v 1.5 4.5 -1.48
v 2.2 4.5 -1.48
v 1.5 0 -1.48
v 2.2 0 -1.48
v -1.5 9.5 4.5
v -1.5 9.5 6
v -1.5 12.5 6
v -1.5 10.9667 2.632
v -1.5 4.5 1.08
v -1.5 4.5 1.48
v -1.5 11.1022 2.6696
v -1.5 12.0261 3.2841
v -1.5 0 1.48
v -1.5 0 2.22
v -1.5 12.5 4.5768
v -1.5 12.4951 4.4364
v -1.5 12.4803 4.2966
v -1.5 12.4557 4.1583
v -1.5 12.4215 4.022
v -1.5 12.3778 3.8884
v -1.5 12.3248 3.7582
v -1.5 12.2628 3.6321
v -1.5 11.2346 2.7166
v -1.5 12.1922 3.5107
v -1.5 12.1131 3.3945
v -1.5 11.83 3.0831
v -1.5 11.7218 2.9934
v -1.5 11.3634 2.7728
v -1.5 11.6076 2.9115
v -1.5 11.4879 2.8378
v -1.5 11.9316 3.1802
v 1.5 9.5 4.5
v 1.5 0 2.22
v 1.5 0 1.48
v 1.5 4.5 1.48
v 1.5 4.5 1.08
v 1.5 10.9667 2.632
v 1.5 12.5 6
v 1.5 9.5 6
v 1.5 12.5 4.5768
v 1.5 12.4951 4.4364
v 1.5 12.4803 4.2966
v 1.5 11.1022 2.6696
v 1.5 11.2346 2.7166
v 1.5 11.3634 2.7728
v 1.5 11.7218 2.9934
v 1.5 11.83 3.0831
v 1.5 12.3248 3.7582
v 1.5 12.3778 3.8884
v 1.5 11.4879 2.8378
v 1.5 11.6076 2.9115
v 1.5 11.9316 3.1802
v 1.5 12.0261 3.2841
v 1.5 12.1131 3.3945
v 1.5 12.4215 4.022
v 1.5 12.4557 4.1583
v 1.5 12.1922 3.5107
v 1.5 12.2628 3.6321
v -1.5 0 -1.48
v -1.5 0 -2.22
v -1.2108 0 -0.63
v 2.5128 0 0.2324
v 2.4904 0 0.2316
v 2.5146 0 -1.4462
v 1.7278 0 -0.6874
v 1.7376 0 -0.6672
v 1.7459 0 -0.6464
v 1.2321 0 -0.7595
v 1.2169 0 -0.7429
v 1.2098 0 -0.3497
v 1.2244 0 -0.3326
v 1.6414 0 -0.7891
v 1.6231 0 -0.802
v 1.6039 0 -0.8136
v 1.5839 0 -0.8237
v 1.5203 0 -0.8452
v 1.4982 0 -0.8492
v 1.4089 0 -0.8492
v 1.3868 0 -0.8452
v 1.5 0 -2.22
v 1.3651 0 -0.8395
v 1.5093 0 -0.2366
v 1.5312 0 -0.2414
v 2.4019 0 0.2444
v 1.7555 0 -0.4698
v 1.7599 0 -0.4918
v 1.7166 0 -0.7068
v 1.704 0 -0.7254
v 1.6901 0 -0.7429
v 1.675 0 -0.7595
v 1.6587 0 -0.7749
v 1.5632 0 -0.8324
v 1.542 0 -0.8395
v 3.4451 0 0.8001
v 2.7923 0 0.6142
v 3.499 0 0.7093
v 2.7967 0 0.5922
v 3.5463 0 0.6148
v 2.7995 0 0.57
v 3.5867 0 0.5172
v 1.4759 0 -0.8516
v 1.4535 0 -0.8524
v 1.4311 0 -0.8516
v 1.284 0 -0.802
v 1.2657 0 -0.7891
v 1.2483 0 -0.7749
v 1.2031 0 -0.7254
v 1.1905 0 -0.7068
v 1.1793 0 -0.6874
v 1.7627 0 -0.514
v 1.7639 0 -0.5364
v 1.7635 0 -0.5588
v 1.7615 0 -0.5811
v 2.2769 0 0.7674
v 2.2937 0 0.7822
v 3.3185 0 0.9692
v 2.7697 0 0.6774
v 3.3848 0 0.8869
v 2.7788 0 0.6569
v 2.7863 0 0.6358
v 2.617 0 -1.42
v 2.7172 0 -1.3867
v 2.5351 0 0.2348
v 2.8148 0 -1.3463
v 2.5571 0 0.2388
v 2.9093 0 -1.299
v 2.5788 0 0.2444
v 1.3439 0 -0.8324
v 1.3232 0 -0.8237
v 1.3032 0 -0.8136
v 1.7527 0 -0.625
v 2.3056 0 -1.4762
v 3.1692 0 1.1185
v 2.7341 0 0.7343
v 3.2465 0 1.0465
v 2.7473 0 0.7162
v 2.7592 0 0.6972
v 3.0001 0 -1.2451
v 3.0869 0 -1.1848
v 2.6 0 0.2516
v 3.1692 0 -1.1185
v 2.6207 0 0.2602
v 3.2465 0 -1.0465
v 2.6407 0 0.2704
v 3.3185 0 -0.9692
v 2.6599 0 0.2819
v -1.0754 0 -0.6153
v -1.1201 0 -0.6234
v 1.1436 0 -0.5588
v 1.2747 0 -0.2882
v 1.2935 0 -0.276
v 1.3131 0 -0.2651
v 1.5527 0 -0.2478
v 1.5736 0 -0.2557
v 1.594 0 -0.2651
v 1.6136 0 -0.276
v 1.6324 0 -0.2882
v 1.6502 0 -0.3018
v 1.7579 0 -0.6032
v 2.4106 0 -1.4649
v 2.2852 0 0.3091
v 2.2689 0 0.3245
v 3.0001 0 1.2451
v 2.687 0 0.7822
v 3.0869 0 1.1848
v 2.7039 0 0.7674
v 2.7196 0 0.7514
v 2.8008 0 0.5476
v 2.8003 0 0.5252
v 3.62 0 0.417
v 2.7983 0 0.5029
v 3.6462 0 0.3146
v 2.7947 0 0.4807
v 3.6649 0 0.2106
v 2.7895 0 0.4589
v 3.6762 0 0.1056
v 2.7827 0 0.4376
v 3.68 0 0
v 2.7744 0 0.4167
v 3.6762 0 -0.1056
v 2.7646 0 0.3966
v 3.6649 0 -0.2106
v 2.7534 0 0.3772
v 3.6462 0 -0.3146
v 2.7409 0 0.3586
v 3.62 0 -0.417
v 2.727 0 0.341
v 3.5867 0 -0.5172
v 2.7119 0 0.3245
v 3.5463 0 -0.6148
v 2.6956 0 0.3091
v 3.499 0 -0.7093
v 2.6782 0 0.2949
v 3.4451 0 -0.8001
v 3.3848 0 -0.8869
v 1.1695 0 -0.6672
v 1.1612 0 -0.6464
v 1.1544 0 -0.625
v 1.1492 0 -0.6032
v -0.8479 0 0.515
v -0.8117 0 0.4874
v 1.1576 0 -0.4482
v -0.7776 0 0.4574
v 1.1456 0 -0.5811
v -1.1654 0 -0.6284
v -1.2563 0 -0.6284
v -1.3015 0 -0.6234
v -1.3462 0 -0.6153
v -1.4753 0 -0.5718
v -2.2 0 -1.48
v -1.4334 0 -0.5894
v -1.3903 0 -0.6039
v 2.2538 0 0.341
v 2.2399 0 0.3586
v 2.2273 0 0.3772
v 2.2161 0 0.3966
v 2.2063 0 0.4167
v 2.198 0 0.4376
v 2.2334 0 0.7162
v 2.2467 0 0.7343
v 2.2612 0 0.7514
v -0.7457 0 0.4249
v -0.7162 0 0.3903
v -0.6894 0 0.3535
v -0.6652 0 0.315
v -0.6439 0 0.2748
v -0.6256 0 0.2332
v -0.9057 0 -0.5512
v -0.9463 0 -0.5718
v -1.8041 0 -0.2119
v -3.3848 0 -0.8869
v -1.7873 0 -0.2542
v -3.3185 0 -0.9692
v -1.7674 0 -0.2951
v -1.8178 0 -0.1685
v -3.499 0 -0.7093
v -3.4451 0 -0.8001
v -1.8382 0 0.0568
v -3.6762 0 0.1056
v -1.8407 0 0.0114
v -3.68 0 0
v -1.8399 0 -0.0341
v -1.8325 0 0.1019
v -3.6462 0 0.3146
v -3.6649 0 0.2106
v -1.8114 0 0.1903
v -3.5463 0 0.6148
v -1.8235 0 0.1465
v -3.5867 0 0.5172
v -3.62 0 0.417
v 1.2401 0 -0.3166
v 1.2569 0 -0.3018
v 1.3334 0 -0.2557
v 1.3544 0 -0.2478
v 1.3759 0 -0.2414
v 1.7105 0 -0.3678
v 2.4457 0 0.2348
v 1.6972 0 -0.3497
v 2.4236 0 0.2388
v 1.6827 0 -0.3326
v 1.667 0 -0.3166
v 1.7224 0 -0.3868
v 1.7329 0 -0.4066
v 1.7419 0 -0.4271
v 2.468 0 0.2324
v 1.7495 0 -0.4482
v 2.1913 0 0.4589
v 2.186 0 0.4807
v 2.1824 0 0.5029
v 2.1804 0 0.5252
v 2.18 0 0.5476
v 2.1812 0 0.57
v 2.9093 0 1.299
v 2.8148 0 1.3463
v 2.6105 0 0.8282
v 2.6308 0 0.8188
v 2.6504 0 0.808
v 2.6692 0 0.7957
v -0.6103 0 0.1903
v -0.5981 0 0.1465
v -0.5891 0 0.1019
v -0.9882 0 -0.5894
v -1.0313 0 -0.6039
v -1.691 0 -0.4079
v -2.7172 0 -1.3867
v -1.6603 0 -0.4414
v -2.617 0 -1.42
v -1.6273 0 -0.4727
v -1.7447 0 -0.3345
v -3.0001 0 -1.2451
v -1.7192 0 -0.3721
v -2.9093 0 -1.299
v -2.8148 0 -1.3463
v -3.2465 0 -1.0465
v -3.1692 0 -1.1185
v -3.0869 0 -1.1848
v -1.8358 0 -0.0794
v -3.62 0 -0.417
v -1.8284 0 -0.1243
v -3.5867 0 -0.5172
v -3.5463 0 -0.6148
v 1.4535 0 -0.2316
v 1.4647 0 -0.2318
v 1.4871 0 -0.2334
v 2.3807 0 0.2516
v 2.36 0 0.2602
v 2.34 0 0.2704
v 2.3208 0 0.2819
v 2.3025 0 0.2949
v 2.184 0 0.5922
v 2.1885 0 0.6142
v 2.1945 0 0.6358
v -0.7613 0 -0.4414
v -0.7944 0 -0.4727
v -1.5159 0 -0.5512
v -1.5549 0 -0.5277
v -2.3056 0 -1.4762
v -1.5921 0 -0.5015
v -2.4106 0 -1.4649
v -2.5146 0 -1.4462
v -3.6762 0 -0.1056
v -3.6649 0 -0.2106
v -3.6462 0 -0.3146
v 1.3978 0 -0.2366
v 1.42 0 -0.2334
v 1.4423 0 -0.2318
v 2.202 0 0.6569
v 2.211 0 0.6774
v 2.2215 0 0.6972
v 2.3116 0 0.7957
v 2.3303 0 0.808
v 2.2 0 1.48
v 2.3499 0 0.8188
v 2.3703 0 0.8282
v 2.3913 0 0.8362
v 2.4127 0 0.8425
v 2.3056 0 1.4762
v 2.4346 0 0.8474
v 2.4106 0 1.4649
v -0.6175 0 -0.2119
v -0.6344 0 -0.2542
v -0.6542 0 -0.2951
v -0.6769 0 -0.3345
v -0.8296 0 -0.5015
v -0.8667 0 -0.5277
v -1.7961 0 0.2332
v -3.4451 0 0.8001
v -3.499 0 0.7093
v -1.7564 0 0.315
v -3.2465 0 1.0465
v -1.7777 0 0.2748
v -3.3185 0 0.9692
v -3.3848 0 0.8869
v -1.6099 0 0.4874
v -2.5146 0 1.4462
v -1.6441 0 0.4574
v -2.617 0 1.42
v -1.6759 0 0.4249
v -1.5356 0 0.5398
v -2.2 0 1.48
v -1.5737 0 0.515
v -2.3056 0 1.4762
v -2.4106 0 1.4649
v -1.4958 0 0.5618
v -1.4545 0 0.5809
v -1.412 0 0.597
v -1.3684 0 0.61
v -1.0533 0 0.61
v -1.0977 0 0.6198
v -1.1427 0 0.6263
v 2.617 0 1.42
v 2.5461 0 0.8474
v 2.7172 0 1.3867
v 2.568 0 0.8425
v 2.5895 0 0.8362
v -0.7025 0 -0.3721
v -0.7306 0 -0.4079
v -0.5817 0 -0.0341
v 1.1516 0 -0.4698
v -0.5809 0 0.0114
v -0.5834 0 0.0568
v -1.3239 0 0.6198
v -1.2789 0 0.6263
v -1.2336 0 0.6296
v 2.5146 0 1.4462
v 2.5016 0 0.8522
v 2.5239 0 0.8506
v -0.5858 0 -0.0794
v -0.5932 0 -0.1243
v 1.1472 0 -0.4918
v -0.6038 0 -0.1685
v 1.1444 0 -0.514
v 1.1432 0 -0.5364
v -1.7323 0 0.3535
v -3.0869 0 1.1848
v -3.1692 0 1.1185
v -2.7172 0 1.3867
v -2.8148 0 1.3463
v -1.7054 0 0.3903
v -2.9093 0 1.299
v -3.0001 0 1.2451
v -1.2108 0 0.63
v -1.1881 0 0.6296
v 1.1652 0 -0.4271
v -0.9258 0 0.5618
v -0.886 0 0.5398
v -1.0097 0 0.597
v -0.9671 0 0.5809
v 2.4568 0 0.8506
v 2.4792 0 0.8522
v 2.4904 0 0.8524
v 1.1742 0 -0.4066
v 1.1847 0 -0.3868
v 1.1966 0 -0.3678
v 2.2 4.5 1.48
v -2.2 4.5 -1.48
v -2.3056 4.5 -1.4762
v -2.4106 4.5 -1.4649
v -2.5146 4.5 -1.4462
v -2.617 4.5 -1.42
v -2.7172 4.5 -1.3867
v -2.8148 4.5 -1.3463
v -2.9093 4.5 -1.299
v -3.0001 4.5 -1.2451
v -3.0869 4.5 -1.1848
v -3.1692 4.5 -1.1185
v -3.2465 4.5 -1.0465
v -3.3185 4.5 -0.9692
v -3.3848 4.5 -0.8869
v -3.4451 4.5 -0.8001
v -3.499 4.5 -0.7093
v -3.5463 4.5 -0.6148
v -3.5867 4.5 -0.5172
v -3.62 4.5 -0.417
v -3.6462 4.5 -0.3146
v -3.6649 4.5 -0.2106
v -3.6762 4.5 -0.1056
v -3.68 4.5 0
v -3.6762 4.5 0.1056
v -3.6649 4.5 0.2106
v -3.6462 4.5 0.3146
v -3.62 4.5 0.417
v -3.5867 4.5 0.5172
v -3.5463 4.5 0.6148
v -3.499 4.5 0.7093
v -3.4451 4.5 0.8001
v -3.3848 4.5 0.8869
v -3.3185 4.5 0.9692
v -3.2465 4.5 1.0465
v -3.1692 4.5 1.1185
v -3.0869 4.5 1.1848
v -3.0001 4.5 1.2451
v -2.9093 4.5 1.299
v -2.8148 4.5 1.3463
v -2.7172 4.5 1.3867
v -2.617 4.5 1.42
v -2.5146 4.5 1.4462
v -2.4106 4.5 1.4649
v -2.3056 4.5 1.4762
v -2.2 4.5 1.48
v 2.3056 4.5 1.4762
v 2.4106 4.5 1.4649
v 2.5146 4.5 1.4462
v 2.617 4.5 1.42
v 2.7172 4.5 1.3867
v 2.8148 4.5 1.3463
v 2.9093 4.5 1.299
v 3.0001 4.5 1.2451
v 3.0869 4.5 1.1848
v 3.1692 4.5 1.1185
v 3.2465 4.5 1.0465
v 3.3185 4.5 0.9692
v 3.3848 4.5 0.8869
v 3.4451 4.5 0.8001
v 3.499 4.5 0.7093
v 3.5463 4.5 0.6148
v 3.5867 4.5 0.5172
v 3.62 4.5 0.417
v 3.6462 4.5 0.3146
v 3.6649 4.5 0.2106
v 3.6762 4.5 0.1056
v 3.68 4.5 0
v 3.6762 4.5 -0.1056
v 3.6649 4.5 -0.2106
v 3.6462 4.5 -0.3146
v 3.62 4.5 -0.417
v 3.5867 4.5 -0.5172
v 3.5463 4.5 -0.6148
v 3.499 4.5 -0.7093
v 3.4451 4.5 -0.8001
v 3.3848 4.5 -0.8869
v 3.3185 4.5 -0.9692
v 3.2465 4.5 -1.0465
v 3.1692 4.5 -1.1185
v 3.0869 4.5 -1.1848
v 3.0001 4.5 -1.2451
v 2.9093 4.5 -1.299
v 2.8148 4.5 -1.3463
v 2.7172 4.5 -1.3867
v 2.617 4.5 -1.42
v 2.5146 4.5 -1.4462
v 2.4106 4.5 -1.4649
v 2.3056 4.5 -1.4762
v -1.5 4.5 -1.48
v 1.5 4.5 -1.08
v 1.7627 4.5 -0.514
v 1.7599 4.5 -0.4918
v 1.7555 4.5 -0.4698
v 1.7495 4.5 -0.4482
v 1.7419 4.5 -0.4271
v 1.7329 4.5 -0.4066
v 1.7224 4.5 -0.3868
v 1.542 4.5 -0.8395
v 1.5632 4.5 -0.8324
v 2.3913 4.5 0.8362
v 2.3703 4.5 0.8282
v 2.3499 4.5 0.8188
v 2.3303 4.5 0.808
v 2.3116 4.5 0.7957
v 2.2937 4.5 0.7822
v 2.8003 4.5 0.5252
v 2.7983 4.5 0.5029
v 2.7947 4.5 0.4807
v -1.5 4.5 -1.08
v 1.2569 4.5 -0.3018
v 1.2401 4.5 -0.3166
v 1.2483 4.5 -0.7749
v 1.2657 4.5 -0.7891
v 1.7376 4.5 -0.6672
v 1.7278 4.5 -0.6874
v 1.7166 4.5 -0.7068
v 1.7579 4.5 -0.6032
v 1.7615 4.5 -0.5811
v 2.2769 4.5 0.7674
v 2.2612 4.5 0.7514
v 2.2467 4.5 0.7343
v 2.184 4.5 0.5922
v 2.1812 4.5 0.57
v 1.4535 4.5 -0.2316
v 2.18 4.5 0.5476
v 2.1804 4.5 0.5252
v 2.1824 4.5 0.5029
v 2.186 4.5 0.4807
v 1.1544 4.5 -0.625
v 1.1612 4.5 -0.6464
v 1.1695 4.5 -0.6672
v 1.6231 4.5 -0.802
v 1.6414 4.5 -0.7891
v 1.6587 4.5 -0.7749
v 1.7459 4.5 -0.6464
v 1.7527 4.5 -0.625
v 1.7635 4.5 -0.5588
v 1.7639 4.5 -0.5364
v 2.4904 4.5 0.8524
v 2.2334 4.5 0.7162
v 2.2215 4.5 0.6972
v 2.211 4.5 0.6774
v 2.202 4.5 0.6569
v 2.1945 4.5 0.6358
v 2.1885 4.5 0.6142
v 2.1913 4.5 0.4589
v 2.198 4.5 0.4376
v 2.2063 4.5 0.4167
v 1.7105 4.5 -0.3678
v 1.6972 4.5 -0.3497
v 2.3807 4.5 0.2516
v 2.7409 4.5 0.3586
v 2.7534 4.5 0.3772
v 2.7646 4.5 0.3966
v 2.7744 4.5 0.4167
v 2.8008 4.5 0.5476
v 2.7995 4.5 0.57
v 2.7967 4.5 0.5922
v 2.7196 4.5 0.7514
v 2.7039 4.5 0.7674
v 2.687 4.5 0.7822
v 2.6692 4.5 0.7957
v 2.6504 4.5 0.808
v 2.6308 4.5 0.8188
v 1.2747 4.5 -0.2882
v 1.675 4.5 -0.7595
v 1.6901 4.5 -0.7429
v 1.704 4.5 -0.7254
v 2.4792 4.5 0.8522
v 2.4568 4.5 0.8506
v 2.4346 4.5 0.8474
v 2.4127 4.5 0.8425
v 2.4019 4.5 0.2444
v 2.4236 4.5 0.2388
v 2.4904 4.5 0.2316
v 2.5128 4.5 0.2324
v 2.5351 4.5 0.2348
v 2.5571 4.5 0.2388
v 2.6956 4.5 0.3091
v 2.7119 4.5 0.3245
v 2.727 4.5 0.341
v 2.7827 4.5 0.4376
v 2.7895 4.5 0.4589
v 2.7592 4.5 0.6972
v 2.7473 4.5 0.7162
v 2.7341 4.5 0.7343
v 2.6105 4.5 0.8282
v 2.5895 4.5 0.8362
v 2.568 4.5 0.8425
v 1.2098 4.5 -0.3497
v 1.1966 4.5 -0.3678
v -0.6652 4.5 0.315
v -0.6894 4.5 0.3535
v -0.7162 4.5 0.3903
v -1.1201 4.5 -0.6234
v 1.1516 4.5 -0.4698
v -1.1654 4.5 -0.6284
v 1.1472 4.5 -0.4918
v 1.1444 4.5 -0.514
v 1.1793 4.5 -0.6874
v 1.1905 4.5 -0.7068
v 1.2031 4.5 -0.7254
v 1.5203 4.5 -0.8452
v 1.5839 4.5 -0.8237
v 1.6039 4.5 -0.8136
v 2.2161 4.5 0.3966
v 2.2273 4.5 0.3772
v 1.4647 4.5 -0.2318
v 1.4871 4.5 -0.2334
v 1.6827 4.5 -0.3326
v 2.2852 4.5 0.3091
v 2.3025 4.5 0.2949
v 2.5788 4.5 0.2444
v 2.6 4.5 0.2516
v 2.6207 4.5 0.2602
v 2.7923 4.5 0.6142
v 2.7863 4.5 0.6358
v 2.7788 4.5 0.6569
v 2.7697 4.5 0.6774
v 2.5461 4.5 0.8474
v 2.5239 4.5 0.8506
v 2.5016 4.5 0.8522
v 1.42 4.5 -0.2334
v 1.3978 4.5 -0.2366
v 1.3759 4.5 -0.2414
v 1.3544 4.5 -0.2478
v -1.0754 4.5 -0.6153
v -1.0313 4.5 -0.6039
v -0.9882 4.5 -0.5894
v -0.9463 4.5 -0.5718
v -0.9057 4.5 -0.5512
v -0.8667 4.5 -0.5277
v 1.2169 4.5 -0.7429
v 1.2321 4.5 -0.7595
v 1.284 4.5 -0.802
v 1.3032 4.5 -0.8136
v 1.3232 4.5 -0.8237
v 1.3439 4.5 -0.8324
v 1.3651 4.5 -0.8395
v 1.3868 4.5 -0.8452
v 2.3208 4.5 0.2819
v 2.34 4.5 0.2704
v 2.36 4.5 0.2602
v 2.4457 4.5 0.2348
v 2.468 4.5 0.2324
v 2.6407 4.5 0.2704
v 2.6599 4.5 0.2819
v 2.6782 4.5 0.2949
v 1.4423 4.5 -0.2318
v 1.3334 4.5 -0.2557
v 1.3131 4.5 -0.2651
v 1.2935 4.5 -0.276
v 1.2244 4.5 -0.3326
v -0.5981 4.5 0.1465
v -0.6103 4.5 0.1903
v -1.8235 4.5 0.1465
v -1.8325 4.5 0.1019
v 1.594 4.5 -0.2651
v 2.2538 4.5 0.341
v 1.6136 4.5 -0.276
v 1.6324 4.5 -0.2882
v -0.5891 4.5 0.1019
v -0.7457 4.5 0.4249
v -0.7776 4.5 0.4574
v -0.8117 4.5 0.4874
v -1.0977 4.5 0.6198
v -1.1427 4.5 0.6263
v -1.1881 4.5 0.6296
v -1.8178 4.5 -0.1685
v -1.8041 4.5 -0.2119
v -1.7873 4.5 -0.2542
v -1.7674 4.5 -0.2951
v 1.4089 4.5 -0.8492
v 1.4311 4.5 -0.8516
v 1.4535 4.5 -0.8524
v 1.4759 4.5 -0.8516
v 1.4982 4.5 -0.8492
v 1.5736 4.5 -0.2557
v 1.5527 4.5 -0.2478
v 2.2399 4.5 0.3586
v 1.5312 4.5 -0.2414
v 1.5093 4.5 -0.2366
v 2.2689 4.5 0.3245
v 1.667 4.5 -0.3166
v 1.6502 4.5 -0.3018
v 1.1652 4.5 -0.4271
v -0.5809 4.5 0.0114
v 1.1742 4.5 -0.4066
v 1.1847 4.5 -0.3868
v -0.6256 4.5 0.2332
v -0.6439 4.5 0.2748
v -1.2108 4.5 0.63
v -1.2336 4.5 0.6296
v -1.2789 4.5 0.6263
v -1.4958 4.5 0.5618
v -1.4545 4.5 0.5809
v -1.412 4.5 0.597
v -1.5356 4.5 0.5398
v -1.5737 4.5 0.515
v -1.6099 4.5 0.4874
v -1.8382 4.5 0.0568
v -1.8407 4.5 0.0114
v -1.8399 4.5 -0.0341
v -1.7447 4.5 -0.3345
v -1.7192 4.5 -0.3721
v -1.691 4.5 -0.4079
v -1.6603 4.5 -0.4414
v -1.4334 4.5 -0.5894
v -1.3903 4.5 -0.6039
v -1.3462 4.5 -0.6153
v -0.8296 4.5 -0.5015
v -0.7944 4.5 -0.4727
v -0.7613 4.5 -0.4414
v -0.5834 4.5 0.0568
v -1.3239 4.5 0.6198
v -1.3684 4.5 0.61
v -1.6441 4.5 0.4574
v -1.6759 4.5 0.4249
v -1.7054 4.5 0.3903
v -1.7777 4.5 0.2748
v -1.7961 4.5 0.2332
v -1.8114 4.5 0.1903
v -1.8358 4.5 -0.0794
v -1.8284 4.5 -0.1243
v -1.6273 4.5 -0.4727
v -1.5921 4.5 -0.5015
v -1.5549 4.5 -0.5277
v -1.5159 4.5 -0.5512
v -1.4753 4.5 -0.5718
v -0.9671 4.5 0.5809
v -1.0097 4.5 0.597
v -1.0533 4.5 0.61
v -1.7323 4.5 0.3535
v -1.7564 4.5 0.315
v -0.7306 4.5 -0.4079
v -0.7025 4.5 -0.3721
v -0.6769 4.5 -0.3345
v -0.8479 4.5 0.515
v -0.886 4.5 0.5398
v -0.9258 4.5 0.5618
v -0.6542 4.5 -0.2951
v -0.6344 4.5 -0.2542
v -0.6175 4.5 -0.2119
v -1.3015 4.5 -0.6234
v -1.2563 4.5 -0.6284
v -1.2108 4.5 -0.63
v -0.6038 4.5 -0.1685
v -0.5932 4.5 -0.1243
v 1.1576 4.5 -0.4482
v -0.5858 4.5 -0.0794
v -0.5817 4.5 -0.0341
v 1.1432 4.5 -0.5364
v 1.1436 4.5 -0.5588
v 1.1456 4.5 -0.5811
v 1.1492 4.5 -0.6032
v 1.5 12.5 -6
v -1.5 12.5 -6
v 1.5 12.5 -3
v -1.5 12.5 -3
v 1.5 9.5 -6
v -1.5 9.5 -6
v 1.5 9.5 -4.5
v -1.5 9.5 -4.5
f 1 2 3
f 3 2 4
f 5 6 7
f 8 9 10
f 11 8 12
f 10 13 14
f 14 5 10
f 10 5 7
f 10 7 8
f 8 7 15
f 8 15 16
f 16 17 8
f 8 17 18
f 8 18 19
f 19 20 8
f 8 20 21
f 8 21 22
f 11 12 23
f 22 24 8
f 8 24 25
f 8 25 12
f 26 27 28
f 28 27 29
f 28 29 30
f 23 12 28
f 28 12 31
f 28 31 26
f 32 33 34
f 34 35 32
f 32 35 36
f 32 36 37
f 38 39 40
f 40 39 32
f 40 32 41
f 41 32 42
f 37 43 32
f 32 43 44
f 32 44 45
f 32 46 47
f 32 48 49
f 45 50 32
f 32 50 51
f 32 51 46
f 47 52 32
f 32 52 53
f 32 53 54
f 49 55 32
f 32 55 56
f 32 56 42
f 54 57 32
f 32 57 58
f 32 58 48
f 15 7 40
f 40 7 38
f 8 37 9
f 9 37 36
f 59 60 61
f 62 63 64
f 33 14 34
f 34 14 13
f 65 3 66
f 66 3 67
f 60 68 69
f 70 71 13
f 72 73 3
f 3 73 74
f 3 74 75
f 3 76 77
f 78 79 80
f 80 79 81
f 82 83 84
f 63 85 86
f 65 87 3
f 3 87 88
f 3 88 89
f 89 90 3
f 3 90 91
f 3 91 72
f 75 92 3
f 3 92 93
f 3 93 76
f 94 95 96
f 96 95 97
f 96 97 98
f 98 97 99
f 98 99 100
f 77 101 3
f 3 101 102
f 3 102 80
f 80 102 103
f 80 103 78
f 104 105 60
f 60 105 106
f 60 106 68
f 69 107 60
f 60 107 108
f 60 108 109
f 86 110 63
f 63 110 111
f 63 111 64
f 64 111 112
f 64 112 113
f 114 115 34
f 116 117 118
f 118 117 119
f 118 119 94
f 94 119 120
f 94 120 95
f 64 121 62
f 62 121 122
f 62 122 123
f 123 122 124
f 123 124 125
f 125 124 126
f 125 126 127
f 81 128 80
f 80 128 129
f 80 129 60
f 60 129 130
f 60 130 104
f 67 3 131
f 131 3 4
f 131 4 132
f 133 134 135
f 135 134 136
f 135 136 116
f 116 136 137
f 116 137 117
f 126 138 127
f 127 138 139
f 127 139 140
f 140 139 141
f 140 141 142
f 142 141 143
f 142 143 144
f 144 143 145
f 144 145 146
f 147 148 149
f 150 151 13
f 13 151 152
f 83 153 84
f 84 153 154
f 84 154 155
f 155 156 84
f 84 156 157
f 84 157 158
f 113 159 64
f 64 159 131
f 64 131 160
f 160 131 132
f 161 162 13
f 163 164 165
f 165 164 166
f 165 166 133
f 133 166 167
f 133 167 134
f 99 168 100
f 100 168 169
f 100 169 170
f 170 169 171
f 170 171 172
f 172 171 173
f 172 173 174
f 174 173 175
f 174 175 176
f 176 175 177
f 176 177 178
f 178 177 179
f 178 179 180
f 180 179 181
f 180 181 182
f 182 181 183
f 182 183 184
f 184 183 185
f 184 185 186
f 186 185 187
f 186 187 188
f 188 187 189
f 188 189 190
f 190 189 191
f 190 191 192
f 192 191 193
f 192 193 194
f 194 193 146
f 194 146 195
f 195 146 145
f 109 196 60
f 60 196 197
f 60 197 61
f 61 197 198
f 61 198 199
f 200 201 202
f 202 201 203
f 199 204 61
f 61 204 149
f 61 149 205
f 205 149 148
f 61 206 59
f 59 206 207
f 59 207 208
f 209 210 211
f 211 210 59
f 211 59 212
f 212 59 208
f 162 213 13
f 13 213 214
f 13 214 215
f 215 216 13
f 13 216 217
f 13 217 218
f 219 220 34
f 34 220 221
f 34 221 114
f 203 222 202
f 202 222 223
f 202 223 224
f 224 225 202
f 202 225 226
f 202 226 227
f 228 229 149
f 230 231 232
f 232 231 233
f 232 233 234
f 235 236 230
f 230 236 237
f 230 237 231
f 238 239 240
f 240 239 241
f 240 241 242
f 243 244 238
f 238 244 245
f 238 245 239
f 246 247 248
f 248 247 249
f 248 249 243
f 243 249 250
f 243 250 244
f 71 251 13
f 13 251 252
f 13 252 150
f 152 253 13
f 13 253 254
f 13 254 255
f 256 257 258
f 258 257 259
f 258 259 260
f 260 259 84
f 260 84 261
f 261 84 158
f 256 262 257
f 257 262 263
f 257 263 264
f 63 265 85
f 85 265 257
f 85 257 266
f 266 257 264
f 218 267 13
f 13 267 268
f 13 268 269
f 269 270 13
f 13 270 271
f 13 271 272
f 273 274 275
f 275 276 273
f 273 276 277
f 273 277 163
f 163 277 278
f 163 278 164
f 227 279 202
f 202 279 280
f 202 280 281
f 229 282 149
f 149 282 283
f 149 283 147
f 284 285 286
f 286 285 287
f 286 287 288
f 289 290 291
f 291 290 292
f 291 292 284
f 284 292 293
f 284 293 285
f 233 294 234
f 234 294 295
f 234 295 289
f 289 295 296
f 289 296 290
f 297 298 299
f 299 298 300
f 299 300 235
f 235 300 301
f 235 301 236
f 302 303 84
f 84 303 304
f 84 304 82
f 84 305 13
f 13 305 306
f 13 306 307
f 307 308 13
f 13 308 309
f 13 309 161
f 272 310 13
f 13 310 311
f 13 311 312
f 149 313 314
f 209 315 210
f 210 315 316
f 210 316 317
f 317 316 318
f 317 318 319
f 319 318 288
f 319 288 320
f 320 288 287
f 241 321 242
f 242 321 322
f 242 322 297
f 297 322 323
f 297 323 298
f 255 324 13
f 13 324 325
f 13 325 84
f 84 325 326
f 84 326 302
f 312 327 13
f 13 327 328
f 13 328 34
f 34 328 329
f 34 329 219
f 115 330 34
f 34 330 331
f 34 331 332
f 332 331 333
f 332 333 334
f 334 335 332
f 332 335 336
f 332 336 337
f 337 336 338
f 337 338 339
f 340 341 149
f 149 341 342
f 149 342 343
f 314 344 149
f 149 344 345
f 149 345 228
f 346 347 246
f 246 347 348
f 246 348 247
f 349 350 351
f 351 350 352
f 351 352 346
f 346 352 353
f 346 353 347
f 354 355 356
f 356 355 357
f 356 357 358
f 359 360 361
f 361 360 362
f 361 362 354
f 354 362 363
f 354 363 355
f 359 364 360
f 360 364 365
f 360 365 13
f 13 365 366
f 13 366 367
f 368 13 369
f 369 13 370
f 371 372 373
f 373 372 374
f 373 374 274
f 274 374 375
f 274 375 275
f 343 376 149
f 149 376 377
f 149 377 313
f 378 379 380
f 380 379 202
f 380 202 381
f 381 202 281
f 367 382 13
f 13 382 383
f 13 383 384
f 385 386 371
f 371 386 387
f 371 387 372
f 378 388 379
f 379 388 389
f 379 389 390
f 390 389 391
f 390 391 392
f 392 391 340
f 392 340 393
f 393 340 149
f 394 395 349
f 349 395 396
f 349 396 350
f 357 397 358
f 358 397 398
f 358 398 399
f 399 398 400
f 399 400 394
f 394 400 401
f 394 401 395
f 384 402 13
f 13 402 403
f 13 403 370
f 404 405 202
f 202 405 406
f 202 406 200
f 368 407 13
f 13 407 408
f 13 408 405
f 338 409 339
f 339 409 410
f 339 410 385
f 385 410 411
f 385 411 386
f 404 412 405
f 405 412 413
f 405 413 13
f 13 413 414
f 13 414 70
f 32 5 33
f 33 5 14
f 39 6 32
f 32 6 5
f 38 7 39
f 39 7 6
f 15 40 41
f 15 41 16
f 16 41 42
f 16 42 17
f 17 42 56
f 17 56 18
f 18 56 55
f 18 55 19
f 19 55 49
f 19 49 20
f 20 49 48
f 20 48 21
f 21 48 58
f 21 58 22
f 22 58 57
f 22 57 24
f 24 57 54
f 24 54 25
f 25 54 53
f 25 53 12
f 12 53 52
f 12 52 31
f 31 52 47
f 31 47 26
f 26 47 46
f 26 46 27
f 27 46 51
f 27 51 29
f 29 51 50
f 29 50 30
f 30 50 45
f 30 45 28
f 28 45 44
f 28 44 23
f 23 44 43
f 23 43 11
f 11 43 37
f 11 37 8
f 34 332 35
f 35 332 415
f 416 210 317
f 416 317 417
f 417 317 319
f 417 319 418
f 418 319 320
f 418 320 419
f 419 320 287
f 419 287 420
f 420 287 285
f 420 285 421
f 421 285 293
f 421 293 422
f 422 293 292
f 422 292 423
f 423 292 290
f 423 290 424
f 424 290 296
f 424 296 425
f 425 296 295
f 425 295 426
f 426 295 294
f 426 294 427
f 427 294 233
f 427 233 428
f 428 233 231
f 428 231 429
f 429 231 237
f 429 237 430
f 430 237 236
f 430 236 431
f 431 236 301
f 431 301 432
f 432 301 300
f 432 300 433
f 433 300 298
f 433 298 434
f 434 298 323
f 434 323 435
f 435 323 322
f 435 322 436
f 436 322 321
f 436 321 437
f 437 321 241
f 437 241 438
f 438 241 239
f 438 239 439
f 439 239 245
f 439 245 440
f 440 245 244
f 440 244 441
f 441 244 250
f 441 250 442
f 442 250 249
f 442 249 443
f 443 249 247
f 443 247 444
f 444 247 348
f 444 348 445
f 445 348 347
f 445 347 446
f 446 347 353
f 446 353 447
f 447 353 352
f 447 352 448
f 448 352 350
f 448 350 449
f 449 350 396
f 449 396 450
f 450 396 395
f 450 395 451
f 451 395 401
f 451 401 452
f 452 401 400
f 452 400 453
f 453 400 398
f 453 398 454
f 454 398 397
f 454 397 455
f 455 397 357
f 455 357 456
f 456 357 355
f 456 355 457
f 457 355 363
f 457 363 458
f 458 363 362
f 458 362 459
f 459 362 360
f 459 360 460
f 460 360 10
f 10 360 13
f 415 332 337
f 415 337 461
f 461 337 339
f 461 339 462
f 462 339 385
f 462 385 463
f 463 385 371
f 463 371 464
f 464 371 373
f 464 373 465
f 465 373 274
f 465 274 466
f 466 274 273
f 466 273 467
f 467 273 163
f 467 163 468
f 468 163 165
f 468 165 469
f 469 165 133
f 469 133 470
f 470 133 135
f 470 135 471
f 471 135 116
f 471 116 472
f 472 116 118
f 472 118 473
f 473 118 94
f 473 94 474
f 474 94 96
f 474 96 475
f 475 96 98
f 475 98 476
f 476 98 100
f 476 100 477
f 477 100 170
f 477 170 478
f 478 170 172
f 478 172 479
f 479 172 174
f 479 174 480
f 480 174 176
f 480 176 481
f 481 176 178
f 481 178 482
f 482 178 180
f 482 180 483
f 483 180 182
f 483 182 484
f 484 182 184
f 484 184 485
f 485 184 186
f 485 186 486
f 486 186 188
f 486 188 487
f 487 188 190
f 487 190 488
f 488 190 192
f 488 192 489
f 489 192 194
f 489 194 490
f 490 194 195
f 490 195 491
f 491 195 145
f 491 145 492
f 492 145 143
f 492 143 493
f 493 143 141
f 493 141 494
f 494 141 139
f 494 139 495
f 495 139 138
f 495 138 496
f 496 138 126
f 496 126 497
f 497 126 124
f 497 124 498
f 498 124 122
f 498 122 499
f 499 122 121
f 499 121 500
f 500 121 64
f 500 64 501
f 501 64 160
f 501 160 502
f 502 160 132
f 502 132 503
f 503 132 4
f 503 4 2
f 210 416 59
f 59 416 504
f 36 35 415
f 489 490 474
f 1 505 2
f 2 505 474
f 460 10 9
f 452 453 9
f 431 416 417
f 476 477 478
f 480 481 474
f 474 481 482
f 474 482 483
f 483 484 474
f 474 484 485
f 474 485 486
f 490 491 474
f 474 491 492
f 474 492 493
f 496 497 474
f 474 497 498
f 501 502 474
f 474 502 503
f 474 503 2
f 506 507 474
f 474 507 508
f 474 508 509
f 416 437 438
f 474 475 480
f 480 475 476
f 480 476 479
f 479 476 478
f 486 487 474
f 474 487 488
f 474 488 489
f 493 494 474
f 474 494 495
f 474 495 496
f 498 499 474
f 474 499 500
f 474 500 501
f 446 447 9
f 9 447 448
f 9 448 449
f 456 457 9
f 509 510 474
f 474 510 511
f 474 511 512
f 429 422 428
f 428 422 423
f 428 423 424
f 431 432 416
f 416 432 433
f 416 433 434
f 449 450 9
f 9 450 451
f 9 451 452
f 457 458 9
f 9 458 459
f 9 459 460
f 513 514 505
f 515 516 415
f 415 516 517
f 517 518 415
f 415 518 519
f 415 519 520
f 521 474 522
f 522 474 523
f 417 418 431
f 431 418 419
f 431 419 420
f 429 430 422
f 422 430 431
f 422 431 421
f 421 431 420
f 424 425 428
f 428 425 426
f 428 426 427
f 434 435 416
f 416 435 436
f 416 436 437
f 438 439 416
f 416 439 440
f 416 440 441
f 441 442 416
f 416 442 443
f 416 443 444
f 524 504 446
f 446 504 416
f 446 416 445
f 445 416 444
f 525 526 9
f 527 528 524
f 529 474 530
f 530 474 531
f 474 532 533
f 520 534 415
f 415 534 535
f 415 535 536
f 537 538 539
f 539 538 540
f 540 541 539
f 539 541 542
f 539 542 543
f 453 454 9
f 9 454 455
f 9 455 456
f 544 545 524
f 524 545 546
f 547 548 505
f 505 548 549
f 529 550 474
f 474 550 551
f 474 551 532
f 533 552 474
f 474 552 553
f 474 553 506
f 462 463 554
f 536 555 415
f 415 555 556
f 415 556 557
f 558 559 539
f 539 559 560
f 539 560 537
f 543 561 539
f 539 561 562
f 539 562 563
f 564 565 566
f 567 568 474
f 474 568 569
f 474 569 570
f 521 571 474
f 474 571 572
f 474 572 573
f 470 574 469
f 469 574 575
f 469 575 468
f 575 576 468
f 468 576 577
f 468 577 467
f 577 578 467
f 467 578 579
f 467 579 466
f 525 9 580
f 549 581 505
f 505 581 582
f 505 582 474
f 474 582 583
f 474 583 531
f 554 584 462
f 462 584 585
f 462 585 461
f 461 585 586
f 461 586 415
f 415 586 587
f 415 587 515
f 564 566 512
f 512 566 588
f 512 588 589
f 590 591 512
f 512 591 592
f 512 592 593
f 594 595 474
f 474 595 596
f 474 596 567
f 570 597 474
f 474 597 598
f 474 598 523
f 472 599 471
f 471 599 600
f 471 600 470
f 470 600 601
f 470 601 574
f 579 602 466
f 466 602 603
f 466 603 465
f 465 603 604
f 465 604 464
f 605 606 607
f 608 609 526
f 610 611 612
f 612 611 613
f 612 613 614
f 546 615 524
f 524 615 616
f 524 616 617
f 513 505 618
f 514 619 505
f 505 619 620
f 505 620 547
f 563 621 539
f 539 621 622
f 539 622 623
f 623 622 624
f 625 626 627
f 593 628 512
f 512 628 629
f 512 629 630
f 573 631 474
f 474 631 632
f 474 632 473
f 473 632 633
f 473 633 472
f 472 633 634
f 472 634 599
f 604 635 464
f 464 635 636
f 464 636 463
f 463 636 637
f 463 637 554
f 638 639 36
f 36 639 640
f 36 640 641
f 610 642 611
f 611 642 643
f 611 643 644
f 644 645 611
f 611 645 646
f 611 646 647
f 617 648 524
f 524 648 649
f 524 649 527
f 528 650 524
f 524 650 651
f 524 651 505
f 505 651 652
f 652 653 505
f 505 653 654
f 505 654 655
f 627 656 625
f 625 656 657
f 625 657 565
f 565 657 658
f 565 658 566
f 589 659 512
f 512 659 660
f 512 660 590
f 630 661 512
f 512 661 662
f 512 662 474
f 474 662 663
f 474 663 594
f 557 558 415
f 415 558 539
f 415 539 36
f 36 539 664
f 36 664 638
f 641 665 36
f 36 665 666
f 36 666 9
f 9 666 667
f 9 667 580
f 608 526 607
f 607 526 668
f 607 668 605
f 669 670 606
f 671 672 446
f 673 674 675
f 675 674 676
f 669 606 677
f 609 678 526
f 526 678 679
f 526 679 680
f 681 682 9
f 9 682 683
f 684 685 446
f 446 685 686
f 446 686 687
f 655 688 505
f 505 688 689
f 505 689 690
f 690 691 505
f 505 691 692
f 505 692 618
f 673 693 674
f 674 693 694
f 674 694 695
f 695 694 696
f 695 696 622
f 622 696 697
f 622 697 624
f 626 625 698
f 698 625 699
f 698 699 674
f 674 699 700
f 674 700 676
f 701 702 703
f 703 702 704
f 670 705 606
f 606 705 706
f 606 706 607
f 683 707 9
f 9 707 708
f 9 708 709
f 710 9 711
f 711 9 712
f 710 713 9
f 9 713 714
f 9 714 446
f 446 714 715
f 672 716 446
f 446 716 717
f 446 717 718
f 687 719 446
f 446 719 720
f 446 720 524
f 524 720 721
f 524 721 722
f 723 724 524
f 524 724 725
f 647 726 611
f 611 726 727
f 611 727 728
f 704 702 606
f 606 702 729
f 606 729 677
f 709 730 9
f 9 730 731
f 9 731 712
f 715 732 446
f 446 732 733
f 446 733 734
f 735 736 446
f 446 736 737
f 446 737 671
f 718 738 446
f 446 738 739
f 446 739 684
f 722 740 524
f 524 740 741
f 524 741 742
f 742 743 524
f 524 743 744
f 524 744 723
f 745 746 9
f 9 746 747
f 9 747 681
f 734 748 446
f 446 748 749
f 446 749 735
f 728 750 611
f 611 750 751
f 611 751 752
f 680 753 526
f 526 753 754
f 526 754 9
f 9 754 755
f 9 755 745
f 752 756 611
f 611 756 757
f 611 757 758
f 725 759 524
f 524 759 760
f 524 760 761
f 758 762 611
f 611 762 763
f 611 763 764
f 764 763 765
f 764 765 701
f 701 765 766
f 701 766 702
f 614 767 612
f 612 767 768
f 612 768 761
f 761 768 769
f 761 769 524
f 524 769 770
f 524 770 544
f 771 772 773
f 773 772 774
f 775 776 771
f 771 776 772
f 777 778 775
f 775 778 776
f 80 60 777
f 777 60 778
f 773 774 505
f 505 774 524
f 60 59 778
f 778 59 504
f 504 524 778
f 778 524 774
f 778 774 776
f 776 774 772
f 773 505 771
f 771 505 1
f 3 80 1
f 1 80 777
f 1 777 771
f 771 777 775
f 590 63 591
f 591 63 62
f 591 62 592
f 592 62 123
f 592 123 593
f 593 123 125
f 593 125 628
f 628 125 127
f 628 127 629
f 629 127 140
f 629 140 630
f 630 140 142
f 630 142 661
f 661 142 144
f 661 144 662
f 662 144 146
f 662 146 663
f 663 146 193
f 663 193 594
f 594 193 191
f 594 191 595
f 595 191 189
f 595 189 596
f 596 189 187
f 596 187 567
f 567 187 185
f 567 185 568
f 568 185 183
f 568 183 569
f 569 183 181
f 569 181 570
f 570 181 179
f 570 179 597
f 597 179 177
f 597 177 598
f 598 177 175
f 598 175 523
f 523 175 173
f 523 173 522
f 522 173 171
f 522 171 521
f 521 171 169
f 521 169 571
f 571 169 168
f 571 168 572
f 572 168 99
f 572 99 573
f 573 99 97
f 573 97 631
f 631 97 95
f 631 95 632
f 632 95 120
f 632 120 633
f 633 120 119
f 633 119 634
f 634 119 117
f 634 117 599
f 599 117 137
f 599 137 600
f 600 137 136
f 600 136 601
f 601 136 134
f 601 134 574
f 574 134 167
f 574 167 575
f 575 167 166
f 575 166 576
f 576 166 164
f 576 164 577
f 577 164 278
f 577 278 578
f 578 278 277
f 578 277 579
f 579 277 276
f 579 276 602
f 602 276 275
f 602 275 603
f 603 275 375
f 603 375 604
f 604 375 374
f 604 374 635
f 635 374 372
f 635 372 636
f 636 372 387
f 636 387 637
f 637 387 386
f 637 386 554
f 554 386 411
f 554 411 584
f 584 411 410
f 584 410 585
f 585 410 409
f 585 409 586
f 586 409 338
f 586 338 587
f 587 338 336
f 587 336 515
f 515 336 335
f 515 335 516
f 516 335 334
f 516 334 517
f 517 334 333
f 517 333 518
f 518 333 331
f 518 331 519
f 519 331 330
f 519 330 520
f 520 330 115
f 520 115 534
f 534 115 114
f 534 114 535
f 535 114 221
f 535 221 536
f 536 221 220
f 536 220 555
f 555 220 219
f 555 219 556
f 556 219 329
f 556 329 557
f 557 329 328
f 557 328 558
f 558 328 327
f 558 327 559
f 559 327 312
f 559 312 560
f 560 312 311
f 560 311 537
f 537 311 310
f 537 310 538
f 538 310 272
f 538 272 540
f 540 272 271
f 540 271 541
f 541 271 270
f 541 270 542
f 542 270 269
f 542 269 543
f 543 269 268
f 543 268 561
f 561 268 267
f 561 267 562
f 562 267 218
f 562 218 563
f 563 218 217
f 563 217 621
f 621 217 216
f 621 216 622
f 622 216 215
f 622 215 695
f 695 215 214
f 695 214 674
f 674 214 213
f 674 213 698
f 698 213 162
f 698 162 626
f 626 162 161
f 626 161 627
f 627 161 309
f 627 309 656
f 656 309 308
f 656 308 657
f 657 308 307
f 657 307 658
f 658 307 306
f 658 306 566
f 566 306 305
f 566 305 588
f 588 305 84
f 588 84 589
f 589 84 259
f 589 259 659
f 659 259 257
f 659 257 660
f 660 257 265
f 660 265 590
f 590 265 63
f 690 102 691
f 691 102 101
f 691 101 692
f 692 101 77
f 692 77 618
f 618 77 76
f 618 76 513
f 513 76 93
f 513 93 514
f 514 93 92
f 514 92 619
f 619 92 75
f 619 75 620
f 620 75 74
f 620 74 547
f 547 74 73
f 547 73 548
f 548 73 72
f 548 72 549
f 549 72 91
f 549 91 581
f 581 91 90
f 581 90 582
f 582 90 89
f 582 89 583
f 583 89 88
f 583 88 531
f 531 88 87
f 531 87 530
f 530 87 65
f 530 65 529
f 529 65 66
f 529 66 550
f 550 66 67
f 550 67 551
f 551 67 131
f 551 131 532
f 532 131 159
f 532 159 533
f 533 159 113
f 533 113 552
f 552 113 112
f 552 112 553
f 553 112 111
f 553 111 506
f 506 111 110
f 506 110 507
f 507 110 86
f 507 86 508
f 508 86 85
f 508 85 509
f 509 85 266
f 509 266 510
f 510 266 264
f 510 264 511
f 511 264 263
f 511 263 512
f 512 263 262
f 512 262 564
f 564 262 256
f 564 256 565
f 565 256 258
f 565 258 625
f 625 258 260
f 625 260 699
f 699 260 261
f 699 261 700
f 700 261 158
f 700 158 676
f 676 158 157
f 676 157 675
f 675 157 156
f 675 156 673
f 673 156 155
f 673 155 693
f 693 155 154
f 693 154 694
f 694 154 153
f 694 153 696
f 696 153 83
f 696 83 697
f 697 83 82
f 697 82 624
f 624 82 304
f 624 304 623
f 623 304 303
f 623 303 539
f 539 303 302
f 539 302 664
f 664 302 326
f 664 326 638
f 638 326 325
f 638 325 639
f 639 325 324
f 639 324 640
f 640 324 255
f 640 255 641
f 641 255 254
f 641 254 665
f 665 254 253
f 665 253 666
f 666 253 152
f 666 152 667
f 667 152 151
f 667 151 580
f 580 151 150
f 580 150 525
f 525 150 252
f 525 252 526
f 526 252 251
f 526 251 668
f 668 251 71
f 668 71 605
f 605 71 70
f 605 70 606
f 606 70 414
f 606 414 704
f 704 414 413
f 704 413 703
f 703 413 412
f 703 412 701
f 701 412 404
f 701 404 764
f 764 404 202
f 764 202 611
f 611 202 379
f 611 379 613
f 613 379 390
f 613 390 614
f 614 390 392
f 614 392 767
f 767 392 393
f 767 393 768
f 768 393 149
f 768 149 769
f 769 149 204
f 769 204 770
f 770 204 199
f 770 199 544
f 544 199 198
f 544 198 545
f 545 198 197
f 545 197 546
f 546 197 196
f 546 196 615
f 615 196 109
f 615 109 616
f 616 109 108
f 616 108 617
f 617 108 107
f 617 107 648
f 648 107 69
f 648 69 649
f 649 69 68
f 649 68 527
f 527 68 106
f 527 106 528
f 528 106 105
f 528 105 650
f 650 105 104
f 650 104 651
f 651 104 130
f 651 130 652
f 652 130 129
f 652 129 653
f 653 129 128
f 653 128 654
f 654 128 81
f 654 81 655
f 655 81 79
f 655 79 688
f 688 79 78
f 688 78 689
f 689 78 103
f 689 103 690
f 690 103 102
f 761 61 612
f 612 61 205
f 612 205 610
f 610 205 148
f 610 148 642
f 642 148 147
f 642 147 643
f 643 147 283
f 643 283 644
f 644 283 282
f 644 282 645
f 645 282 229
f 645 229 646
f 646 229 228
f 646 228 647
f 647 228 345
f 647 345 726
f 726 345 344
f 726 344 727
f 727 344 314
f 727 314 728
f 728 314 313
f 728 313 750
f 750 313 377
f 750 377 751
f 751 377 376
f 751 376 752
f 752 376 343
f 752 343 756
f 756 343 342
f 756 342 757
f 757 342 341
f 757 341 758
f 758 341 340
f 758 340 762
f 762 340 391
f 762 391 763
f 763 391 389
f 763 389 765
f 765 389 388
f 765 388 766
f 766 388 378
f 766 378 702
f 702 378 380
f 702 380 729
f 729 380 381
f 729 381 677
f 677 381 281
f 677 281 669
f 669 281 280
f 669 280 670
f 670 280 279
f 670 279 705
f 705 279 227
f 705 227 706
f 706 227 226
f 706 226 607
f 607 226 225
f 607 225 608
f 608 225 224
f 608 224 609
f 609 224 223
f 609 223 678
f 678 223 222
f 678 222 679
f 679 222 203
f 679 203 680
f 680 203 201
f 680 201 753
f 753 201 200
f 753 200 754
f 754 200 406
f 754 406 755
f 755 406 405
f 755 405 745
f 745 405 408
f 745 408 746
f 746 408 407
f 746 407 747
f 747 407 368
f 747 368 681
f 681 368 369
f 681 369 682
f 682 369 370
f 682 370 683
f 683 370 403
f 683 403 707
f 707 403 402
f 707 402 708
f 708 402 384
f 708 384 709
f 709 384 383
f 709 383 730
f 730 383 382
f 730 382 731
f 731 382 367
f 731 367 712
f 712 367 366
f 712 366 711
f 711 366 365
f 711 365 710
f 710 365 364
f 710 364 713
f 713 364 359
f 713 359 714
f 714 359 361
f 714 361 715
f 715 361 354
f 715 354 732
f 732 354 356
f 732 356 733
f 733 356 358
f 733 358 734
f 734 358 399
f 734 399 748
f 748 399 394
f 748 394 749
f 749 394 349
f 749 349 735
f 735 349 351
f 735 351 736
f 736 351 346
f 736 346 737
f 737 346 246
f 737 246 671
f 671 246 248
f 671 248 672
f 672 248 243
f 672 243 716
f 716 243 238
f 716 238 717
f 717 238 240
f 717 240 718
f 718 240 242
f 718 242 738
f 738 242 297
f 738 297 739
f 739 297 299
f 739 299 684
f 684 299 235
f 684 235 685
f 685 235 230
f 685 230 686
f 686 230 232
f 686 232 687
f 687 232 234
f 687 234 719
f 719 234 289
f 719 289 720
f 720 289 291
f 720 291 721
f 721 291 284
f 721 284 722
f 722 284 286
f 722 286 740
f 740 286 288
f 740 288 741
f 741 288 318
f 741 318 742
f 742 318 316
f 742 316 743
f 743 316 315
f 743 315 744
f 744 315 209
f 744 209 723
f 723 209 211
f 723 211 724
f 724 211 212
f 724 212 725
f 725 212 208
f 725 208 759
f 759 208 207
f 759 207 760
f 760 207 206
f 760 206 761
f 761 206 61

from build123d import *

# Parameters (mm, degrees)
BOSS_EXTRUDE2_DEPTH = 1.5
FILLET1_R           = 2
BOSS_EXTRUDE3_DEPTH = 4.5
SKETCH1_3_R         = 0.63
SKETCH1_3_R_2       = 0.310429465
CUT_EXTRUDE2_DEPTH  = 15.345466183


with BuildPart() as part:
    # Sketch2 → Boss-Extrude2 (new, symmetric)
    with BuildSketch(Plane(origin=(0, 0, 0), x_dir=(0, 0, -1), z_dir=(1, 0, 0))):
        Polygon((-6, 12.5), (-6, 9.5), (-4.5, 9.5), (-2.22, 0), (0, 0), (-3, 12.5), align=None)
    boss_extrude2 = extrude(amount=BOSS_EXTRUDE2_DEPTH, both=True)

    # Fillet1
    fillet1_edges = [part.edges().sort_by_distance(p)[0] for p in [
        (0, 12.5, 3),
    ]]
    fillet(fillet1_edges, radius=FILLET1_R)

    # Sketch1 → Boss-Extrude3 (add)
    with BuildSketch(Plane(origin=(0, 0, 0), x_dir=(1, 0, 0), z_dir=(0, 1, 0))):
        with BuildLine():
            Line((-2.2, 1.48), (2.2, 1.48))
            ThreePointArc((2.2, 1.48), (3.68, 0), (2.2, -1.48))
            Line((2.2, -1.48), (-2.2, -1.48))
            ThreePointArc((-2.2, -1.48), (-3.68, 0), (-2.2, 1.48))
        make_face()
    extrude(amount=BOSS_EXTRUDE3_DEPTH)

    # Mirror1: Boss-Extrude2 across plane
    add(boss_extrude2.mirror(Plane.XY))

    # Sketch1<3> → Cut-Extrude2 (cut, through all)
    with BuildSketch(Plane(origin=(0, 0, 0), x_dir=(1, 0, 0), z_dir=(0, 1, 0))):
        with Locations((-1.210810654, 0)):
            Circle(SKETCH1_3_R)
        with Locations((1.453538454, 0.541981393)):
            Circle(SKETCH1_3_R_2)
        with Locations((2.490372423, -0.541981393)):
            Circle(SKETCH1_3_R_2)
    extrude(amount=CUT_EXTRUDE2_DEPTH, mode=Mode.SUBTRACT)


solid = part.part
